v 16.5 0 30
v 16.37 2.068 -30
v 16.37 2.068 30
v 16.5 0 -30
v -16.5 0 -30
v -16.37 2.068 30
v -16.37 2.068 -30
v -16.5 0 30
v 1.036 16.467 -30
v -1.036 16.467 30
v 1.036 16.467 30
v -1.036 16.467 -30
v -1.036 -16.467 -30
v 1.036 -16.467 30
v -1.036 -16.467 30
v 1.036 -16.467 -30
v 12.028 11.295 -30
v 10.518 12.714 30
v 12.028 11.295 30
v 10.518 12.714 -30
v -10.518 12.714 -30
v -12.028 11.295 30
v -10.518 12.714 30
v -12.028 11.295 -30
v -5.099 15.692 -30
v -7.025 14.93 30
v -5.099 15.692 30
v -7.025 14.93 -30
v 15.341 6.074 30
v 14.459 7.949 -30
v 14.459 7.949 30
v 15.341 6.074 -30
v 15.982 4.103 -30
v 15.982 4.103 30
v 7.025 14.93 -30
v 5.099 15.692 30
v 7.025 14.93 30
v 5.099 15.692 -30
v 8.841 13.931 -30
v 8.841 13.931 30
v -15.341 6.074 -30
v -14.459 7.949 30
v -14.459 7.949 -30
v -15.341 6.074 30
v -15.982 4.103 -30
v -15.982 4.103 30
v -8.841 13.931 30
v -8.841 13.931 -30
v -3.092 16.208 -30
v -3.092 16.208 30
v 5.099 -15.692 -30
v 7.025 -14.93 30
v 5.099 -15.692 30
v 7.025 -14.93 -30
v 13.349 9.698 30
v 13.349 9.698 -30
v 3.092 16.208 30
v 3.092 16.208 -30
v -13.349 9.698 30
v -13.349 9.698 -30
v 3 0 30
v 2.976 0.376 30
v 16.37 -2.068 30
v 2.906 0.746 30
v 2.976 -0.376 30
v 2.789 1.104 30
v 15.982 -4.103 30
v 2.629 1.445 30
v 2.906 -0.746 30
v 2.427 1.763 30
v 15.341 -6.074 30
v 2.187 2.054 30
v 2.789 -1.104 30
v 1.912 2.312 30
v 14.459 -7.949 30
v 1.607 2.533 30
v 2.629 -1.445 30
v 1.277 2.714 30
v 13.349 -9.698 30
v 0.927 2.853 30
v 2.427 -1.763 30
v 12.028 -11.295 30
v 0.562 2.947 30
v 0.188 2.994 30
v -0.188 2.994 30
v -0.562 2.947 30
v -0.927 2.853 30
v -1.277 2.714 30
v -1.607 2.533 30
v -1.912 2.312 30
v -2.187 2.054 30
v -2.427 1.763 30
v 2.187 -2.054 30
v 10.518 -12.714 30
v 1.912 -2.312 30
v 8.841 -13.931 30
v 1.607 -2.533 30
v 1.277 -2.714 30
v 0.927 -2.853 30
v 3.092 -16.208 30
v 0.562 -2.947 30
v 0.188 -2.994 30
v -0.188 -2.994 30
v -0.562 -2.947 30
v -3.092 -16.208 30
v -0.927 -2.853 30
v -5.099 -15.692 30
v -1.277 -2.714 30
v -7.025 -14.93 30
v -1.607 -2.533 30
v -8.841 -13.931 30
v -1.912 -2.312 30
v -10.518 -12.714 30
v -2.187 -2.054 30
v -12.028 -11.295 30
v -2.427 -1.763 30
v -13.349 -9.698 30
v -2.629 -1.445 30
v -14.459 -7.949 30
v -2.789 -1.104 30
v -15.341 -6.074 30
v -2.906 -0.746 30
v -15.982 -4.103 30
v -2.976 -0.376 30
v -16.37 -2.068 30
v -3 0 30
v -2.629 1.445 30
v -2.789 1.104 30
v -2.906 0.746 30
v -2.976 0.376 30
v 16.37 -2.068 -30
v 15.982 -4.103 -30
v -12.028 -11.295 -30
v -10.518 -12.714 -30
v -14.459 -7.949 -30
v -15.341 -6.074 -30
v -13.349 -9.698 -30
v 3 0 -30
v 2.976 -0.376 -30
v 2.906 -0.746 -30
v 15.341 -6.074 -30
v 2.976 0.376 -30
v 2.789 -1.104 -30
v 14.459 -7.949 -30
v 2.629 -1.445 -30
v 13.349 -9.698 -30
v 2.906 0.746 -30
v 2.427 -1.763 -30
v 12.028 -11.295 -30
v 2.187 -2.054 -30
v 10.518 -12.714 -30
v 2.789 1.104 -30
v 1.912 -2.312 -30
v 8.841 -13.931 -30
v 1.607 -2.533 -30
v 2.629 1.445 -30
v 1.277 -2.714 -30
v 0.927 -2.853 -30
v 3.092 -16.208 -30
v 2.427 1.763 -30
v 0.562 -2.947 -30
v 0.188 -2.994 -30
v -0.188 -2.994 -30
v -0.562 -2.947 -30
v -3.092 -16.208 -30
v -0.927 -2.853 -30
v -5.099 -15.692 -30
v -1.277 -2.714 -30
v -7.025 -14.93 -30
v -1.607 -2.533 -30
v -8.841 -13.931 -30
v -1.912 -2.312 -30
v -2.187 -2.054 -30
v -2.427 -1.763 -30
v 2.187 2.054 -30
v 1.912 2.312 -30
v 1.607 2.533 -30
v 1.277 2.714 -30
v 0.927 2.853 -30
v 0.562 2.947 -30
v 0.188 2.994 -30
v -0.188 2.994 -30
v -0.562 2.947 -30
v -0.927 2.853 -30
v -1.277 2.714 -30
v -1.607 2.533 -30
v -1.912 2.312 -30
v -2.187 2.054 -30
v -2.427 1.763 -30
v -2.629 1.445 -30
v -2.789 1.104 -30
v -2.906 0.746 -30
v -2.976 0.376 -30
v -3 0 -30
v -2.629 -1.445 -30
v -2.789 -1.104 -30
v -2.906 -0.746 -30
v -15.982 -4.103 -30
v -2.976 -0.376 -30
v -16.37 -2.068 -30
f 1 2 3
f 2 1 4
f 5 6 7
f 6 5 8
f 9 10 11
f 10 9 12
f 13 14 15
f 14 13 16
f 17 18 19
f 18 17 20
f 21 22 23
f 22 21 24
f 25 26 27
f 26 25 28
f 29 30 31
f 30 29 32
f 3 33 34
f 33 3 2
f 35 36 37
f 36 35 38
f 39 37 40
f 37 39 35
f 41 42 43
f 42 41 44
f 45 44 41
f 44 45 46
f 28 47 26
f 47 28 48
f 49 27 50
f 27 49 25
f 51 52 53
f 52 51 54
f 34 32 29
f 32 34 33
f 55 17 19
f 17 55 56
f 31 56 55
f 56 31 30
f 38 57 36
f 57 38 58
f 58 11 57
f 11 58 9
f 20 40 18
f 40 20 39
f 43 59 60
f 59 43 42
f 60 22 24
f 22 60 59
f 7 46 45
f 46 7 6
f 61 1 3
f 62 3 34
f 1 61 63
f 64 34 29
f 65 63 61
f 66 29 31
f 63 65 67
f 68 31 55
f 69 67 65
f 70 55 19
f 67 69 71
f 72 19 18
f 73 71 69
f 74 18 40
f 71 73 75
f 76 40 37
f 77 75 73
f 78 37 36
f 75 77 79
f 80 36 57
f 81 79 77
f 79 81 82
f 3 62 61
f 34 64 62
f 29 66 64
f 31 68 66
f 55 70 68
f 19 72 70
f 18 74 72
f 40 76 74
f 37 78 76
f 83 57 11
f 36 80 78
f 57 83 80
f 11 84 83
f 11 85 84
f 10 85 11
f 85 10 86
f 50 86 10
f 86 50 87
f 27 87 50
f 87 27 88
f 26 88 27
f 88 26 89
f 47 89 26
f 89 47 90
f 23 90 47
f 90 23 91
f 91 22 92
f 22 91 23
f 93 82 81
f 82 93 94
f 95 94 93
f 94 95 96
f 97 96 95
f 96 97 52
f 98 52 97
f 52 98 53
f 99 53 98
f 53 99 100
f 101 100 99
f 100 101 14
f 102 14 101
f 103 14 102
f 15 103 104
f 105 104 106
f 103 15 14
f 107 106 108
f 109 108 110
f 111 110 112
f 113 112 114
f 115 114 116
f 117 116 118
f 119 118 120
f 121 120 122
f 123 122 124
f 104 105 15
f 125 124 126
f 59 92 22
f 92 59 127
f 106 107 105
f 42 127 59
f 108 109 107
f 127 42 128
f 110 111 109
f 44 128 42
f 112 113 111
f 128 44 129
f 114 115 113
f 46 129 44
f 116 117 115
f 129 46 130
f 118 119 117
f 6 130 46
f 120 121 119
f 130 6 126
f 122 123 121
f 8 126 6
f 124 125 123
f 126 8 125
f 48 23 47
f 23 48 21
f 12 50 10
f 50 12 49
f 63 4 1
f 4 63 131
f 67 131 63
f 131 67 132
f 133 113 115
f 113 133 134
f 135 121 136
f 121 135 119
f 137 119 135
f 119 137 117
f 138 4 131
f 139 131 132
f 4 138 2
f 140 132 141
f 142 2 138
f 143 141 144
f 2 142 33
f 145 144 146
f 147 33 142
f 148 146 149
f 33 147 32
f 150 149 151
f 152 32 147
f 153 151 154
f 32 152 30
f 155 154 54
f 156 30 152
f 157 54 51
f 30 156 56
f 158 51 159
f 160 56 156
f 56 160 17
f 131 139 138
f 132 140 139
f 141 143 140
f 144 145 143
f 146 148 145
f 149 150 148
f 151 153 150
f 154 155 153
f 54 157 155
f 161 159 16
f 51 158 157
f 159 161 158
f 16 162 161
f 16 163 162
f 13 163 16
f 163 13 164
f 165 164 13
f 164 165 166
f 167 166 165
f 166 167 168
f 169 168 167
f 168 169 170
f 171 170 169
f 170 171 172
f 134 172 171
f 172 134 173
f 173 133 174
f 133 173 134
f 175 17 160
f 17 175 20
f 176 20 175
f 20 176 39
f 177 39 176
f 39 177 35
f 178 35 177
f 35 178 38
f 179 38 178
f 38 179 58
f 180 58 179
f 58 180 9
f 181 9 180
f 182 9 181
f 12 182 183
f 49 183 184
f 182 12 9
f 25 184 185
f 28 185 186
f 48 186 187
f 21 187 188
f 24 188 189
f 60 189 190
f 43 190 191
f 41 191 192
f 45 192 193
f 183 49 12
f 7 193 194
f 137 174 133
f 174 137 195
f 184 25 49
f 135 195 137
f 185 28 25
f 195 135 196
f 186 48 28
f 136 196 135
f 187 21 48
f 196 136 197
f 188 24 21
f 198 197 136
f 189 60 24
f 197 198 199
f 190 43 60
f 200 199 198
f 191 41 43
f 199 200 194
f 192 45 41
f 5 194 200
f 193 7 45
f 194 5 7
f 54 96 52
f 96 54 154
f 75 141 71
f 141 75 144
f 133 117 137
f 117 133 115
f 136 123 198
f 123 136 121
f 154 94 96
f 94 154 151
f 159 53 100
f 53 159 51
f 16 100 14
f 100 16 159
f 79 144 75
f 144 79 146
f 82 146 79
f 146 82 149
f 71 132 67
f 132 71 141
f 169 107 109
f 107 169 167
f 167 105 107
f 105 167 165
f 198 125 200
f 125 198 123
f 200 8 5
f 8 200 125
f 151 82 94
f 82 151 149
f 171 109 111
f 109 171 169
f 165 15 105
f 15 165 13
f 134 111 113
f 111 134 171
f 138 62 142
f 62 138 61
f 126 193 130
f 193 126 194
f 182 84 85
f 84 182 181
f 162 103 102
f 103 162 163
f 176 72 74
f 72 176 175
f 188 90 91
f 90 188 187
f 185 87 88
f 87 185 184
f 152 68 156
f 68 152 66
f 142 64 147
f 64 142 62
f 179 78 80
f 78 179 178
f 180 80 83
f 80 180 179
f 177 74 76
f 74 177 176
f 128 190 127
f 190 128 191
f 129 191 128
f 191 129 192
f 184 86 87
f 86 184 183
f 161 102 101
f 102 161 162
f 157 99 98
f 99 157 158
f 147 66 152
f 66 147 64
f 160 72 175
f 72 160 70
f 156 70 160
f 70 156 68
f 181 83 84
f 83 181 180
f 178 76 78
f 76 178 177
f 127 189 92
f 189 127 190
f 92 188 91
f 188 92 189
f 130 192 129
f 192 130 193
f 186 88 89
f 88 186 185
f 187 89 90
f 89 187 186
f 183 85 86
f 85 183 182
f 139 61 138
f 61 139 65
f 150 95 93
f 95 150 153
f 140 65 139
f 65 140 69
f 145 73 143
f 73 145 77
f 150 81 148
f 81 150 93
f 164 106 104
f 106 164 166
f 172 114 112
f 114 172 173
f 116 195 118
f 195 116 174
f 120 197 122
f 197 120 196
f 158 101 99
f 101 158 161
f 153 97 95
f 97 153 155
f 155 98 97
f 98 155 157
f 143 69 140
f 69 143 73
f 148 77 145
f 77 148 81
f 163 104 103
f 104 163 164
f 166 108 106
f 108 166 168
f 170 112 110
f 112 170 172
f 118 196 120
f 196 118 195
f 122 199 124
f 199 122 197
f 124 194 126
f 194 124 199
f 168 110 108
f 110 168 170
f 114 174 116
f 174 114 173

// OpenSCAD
$fn = 50;


difference() {
	union() {
		translate(v = [0, 0, -30.0000000000]) {
			cylinder(h = 60, r = 16.5000000000);
		}
	}
	union() {
		translate(v = [0, 0, -100.0000000000]) {
			cylinder(h = 200, r = 3);
		}
	}
}
